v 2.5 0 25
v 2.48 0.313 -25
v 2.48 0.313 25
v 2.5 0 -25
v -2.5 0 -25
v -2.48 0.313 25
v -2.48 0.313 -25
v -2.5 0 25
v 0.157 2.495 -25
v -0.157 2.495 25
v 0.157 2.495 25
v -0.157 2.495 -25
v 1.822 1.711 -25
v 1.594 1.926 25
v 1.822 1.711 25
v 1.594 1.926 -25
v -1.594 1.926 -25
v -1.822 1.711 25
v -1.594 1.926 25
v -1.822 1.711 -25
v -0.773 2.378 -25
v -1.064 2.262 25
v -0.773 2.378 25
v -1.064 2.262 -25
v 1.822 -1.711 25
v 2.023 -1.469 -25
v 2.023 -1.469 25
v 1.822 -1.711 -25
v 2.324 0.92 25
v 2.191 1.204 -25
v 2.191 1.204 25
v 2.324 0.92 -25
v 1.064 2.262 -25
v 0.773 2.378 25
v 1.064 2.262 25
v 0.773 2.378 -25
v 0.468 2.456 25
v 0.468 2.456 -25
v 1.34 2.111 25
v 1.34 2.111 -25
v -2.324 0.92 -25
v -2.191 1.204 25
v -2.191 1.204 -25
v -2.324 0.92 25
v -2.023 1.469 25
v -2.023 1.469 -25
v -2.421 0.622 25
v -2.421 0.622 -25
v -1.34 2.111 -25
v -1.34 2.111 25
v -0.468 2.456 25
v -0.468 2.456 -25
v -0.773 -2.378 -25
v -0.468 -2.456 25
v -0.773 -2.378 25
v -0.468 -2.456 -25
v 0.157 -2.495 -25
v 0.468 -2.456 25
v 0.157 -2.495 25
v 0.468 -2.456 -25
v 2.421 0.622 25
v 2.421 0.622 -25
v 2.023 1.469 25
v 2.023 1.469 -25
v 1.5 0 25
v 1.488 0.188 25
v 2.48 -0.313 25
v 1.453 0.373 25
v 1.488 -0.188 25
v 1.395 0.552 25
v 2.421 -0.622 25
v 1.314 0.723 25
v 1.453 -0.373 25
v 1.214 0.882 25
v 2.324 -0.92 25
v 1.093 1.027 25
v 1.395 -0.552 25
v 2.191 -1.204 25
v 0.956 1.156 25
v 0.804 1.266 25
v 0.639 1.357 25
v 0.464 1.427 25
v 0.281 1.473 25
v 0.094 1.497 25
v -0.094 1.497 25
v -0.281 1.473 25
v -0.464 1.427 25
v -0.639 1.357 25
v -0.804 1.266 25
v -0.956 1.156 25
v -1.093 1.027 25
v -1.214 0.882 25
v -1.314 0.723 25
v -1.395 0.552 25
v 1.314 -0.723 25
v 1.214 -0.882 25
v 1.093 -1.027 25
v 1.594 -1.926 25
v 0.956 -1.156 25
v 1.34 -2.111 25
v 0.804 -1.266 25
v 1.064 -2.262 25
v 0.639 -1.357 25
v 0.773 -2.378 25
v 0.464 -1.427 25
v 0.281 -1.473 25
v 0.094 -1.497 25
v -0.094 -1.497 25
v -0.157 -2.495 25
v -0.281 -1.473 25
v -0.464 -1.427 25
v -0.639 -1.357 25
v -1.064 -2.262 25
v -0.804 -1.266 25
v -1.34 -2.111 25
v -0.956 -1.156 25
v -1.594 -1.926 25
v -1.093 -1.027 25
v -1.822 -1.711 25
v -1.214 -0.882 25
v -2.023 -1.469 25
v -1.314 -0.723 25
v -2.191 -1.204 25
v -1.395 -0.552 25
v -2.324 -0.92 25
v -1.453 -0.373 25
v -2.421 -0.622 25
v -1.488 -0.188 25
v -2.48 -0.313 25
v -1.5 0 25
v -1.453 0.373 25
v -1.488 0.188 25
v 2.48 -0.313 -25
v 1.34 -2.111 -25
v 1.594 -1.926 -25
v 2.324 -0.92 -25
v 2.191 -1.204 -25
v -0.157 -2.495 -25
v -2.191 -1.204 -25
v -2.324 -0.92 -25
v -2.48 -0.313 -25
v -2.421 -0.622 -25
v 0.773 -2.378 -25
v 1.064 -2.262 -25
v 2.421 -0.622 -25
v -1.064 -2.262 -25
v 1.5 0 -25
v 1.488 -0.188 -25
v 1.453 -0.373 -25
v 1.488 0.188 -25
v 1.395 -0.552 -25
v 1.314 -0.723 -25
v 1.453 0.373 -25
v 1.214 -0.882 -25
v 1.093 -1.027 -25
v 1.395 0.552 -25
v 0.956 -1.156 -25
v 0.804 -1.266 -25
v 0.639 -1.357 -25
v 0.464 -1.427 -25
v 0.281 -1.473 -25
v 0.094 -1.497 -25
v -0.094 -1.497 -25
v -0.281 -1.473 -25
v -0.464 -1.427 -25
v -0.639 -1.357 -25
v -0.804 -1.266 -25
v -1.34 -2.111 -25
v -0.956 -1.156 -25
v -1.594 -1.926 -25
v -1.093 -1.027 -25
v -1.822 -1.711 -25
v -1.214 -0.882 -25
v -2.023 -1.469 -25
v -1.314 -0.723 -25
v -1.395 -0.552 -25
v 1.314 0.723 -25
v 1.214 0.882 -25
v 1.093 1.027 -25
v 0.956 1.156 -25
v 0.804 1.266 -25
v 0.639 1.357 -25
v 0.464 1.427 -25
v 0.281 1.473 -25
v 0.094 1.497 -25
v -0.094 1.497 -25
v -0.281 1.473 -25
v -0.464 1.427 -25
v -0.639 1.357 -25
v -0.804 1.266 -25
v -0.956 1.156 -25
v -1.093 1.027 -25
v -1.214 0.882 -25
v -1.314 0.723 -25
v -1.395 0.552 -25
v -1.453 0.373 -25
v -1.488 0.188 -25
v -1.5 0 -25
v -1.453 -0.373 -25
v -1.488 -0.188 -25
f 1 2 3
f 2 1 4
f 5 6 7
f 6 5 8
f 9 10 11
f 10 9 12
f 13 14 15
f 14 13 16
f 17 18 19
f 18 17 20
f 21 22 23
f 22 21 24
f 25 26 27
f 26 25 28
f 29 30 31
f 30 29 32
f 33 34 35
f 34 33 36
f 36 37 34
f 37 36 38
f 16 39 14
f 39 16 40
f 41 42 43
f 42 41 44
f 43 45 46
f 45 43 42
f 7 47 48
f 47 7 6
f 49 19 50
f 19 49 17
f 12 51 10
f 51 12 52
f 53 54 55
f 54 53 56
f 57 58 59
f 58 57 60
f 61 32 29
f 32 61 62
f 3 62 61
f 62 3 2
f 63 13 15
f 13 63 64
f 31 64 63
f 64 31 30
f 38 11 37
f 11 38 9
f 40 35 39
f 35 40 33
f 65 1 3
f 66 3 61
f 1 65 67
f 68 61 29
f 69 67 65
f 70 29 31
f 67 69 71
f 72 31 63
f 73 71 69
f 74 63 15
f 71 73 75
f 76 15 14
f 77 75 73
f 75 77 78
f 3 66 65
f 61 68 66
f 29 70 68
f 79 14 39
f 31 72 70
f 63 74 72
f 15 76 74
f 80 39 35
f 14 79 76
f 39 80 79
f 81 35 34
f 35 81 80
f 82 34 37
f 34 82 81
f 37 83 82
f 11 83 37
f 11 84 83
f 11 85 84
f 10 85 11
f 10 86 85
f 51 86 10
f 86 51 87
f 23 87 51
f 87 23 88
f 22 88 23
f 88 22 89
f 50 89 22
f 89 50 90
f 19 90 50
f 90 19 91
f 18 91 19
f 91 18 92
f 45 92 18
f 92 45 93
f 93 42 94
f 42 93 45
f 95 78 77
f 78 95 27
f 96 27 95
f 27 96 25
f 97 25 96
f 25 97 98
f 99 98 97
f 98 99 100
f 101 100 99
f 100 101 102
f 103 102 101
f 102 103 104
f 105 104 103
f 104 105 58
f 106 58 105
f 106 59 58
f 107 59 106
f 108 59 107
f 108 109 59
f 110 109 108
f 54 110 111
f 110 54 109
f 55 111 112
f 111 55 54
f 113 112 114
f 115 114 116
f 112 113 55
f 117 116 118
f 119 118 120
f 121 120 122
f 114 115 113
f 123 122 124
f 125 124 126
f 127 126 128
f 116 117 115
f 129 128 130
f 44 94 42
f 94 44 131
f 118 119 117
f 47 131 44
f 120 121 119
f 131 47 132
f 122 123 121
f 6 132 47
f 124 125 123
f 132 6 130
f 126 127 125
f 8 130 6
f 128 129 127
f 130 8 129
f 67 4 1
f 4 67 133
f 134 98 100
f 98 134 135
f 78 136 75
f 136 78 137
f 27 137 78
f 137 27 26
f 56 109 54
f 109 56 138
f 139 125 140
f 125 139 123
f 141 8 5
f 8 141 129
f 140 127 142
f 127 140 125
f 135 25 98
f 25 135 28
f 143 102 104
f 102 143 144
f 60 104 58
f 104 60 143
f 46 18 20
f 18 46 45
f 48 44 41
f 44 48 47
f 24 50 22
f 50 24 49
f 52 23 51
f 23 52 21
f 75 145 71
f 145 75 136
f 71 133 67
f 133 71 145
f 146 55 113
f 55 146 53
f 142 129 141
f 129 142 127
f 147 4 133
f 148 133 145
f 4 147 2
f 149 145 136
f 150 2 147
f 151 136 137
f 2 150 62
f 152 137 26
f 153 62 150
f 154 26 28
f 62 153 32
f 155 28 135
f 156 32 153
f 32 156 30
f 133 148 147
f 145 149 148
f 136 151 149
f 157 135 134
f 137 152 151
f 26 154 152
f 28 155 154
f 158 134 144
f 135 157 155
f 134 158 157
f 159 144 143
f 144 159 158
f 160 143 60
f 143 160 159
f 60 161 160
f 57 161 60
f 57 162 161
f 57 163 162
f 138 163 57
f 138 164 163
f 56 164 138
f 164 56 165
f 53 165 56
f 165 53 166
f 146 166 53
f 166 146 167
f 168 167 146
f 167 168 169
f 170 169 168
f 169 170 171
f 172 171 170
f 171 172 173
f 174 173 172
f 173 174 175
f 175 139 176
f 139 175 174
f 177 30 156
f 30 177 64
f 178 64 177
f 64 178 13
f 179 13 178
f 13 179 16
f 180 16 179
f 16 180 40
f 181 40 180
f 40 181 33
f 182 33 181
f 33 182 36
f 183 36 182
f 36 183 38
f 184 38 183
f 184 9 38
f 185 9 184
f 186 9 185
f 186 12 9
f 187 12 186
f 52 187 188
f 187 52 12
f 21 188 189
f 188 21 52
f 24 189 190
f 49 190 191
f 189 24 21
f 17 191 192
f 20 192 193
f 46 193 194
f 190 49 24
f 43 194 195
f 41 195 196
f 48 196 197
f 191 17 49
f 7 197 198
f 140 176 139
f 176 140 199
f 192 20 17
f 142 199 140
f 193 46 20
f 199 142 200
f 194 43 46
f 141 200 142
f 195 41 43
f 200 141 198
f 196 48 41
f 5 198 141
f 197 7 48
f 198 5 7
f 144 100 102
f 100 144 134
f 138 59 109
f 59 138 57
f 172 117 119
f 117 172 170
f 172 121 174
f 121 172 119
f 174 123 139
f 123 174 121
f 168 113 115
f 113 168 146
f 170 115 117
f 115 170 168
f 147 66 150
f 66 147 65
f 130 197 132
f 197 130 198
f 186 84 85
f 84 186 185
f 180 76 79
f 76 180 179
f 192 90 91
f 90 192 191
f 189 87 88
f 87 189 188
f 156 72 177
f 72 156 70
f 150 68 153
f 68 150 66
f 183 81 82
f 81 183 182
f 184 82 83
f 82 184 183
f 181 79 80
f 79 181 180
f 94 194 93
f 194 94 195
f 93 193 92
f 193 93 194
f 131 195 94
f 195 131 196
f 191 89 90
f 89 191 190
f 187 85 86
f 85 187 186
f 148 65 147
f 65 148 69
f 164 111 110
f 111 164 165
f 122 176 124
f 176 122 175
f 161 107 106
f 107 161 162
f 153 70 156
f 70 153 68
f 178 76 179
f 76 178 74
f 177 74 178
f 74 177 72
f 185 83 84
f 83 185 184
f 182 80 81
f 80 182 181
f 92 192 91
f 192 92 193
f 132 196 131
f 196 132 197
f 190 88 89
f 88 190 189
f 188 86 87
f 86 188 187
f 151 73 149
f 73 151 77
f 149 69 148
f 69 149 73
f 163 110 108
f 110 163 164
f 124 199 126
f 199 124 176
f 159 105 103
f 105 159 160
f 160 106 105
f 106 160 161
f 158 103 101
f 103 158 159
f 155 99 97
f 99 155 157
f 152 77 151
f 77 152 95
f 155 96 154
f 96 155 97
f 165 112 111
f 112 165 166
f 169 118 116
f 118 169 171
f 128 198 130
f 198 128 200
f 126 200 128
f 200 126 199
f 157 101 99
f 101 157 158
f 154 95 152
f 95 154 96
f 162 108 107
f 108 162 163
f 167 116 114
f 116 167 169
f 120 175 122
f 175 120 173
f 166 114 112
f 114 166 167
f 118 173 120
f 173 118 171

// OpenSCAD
$fn = 50;


difference() {
	union() {
		translate(v = [0, 0, -25.0000000000]) {
			cylinder(h = 50, r = 2.5000000000);
		}
	}
	union() {
		translate(v = [0, 0, -100.0000000000]) {
			cylinder(h = 200, r = 1.5000000000);
		}
	}
}
